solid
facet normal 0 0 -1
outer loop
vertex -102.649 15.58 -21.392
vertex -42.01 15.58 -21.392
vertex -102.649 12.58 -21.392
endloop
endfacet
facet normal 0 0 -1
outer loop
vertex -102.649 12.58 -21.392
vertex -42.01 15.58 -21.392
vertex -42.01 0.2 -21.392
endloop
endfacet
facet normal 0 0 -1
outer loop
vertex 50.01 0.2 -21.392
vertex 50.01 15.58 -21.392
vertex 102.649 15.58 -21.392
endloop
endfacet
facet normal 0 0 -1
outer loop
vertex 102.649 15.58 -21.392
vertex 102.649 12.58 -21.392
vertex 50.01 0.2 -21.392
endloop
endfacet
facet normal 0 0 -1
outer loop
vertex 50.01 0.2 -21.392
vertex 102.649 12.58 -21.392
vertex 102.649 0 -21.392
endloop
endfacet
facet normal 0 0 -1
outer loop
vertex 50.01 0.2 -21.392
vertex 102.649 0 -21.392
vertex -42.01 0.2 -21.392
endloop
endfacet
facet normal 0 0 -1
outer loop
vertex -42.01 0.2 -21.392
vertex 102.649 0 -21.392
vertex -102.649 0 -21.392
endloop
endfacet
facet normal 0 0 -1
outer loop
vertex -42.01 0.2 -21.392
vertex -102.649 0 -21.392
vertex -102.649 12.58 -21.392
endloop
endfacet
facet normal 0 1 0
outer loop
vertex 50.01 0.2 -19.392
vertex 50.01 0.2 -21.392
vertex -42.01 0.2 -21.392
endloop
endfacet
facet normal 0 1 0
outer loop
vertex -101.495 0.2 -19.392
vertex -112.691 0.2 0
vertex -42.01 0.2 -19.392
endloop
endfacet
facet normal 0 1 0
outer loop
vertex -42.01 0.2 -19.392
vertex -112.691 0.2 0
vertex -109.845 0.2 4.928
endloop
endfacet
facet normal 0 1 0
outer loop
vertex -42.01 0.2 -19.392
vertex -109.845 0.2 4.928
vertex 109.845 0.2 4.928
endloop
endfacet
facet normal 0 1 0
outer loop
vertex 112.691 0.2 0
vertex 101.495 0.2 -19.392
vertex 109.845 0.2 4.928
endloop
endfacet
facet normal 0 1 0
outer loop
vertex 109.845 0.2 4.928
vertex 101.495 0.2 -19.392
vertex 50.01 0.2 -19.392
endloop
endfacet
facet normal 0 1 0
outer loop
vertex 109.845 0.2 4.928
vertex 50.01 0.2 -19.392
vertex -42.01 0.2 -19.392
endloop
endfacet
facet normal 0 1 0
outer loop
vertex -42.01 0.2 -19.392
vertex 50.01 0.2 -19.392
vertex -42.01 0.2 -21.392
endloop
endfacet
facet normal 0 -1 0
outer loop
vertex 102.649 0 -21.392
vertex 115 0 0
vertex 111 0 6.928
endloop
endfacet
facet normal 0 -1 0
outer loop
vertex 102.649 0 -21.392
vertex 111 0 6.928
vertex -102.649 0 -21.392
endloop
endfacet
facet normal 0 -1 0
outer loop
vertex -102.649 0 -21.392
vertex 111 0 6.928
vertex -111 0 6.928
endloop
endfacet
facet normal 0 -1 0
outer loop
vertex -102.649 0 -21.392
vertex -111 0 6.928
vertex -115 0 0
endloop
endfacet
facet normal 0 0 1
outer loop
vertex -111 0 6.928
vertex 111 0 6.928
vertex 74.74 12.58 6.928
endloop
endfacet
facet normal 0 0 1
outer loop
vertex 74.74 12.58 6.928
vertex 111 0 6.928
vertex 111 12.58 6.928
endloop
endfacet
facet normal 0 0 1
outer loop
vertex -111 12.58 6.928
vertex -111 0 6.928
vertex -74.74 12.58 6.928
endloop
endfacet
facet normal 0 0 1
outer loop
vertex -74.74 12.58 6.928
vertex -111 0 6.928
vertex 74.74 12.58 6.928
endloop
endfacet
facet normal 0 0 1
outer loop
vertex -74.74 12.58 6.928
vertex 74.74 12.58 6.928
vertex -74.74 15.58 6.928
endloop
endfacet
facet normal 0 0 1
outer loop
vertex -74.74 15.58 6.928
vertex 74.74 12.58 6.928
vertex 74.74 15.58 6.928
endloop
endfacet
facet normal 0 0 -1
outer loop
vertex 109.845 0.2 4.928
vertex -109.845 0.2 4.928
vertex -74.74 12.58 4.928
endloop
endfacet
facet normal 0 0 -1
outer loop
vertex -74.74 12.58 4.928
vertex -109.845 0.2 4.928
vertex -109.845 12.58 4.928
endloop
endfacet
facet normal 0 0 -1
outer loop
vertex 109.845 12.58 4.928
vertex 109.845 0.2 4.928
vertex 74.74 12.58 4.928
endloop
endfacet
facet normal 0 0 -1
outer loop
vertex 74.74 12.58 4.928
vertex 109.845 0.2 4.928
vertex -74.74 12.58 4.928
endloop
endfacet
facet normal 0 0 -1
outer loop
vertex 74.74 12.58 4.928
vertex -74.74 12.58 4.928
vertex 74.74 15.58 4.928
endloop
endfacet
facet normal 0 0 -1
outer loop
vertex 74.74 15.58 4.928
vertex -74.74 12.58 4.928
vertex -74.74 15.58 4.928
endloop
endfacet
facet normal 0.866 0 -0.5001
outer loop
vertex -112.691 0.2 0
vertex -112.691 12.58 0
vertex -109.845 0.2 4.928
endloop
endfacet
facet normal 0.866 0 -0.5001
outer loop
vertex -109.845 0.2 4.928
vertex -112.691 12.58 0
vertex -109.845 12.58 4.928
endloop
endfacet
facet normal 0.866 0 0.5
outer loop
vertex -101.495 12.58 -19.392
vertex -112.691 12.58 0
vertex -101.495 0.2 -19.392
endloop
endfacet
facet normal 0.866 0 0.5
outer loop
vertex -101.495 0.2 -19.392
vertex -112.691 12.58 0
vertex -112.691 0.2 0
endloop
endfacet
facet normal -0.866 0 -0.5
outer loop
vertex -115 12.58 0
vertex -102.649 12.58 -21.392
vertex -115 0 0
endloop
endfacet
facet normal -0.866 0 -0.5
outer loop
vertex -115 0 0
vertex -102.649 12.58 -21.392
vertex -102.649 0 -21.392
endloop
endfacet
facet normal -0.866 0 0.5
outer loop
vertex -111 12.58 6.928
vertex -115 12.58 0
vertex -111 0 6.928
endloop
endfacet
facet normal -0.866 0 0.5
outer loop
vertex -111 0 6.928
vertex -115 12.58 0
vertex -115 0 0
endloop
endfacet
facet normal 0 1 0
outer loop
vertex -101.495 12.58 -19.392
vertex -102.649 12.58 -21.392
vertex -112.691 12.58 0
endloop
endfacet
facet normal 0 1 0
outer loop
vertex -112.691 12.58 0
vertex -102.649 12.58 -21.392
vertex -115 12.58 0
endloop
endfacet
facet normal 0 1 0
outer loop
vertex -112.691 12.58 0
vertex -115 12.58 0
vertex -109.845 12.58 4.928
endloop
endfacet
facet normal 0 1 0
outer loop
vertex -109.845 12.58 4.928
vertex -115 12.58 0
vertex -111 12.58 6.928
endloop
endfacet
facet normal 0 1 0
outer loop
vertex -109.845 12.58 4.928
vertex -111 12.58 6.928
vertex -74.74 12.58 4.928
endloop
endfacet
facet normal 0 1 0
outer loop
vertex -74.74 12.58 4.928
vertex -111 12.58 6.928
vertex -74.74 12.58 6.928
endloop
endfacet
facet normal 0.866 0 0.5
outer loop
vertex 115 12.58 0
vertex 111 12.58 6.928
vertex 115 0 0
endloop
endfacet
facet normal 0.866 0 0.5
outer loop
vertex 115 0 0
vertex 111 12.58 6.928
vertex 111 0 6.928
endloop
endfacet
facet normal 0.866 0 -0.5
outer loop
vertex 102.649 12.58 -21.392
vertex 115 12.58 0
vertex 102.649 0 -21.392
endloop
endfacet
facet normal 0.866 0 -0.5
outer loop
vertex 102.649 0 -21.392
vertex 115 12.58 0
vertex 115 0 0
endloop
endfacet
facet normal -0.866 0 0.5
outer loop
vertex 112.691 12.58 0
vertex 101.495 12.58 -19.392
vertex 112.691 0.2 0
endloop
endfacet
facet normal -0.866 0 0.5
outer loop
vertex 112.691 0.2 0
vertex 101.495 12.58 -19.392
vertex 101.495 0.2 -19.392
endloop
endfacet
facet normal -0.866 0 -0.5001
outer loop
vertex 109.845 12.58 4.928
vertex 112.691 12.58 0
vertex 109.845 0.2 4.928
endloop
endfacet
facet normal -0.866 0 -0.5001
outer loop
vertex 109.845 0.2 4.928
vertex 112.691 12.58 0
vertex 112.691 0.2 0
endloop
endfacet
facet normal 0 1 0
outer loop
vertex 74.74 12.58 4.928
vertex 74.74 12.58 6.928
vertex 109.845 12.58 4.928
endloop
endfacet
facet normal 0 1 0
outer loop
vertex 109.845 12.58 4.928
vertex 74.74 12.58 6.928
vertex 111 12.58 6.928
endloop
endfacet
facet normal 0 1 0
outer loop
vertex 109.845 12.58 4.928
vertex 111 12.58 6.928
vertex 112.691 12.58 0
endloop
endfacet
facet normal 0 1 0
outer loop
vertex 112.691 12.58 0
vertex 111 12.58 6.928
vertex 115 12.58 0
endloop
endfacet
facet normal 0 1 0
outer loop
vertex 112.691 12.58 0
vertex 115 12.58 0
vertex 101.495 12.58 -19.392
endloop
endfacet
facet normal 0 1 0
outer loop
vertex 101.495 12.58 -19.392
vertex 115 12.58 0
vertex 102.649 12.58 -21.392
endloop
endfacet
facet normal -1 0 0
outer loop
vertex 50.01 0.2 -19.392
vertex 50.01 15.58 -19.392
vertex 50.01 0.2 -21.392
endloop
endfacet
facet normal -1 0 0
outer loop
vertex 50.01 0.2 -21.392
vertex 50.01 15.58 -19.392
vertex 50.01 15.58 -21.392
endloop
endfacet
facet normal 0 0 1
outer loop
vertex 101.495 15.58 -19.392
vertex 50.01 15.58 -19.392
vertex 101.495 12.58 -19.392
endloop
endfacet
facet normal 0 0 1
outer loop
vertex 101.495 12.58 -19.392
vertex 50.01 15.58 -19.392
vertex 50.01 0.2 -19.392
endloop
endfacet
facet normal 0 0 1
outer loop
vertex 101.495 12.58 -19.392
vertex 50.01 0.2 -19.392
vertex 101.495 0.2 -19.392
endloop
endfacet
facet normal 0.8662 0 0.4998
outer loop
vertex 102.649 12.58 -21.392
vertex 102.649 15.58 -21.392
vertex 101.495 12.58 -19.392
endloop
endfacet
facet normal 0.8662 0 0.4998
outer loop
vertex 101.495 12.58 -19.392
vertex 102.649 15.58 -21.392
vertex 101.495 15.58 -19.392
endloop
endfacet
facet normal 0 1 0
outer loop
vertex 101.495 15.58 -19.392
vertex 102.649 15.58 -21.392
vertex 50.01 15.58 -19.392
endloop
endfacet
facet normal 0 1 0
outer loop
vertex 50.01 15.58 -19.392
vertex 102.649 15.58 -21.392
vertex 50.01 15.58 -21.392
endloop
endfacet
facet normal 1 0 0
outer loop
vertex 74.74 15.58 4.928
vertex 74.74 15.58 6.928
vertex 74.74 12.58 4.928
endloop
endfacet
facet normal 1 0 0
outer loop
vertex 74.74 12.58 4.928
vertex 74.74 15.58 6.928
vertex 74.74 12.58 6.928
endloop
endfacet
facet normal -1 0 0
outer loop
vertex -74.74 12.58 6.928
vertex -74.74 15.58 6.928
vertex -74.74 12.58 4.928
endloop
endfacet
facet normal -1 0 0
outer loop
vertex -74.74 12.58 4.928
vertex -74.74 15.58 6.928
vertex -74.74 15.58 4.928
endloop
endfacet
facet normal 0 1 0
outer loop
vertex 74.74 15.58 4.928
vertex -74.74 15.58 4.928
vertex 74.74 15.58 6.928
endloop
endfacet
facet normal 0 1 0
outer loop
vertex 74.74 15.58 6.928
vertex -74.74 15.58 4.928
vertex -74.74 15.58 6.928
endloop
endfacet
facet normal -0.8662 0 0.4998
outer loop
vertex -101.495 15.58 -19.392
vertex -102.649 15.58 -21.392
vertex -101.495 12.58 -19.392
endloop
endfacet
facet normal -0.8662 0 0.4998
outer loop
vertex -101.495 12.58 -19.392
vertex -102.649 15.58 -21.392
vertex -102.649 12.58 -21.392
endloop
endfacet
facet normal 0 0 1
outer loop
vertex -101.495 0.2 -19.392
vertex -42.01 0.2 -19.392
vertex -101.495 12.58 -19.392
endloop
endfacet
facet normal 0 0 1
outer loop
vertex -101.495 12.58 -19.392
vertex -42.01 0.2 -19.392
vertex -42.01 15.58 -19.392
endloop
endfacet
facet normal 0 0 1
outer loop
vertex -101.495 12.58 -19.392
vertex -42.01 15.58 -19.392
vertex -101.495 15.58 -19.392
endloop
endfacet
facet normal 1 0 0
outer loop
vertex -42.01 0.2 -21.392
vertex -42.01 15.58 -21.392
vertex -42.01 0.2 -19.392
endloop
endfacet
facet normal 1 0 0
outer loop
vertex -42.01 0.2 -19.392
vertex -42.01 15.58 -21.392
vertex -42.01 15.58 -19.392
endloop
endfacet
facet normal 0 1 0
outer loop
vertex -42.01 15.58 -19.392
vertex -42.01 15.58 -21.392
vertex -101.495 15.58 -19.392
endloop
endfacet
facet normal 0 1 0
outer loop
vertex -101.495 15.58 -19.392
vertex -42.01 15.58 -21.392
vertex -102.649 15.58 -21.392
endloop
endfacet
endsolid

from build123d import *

# Parameters (mm, degrees)
BOSS_EXTRUDE1_DEPTH = 0.2
BOSS_EXTRUDE2_DEPTH = 12.58
SKETCH1_4_W         = 149.48
SKETCH1_4_H         = 2
BOSS_EXTRUDE3_DEPTH = 15.58


with BuildPart() as part:
    # Sketch1 → Boss-Extrude1 (new body)
    with BuildSketch(Plane(origin=(0, 0, 0), x_dir=(1, 0, 0), z_dir=(0, 1, 0))):
        Polygon((-42.01, 19.39179677), (-101.494739838, 19.39179677), (-112.690598923, 0), (-109.845299462, -4.92820323), (-74.74, -4.92820323), (74.74, -4.92820323), (109.845299462, -4.92820323), (112.690598923, 0), (101.494739838, 19.39179677), (50.01, 19.39179677), (50.01, 21.39179677), (-42.01, 21.39179677), align=None)
    extrude(amount=BOSS_EXTRUDE1_DEPTH)

    # Sketch1<3> → Boss-Extrude2 (add)
    with BuildSketch(Plane(origin=(0, 0, 0), x_dir=(1, 0, 0), z_dir=(0, 1, 0))):
        Polygon((-115, 0), (-111, -6.92820323), (-74.74, -6.92820323), (-74.74, -4.92820323), (-109.845299462, -4.92820323), (-112.690598923, 0), (-101.494739838, 19.39179677), (-102.649440377, 21.39179677), align=None)
        Polygon((115, 0), (111, -6.92820323), (74.74, -6.92820323), (74.74, -4.92820323), (109.845299462, -4.92820323), (112.690598923, 0), (101.494739838, 19.39179677), (102.649440377, 21.39179677), align=None)
    extrude(amount=BOSS_EXTRUDE2_DEPTH)

    # Sketch1<4> → Boss-Extrude3 (add)
    with BuildSketch(Plane(origin=(0, 0, 0), x_dir=(1, 0, 0), z_dir=(0, 1, 0))):
        Polygon((-42.01, 21.39179677), (-102.649440377, 21.39179677), (-101.494739838, 19.39179677), (-42.01, 19.39179677), align=None)
        with Locations((0, -5.92820323)):
            Rectangle(SKETCH1_4_W, SKETCH1_4_H)
        Polygon((102.649440377, 21.39179677), (50.01, 21.39179677), (50.01, 19.39179677), (101.494739838, 19.39179677), align=None)
    extrude(amount=BOSS_EXTRUDE3_DEPTH)


solid = part.part
